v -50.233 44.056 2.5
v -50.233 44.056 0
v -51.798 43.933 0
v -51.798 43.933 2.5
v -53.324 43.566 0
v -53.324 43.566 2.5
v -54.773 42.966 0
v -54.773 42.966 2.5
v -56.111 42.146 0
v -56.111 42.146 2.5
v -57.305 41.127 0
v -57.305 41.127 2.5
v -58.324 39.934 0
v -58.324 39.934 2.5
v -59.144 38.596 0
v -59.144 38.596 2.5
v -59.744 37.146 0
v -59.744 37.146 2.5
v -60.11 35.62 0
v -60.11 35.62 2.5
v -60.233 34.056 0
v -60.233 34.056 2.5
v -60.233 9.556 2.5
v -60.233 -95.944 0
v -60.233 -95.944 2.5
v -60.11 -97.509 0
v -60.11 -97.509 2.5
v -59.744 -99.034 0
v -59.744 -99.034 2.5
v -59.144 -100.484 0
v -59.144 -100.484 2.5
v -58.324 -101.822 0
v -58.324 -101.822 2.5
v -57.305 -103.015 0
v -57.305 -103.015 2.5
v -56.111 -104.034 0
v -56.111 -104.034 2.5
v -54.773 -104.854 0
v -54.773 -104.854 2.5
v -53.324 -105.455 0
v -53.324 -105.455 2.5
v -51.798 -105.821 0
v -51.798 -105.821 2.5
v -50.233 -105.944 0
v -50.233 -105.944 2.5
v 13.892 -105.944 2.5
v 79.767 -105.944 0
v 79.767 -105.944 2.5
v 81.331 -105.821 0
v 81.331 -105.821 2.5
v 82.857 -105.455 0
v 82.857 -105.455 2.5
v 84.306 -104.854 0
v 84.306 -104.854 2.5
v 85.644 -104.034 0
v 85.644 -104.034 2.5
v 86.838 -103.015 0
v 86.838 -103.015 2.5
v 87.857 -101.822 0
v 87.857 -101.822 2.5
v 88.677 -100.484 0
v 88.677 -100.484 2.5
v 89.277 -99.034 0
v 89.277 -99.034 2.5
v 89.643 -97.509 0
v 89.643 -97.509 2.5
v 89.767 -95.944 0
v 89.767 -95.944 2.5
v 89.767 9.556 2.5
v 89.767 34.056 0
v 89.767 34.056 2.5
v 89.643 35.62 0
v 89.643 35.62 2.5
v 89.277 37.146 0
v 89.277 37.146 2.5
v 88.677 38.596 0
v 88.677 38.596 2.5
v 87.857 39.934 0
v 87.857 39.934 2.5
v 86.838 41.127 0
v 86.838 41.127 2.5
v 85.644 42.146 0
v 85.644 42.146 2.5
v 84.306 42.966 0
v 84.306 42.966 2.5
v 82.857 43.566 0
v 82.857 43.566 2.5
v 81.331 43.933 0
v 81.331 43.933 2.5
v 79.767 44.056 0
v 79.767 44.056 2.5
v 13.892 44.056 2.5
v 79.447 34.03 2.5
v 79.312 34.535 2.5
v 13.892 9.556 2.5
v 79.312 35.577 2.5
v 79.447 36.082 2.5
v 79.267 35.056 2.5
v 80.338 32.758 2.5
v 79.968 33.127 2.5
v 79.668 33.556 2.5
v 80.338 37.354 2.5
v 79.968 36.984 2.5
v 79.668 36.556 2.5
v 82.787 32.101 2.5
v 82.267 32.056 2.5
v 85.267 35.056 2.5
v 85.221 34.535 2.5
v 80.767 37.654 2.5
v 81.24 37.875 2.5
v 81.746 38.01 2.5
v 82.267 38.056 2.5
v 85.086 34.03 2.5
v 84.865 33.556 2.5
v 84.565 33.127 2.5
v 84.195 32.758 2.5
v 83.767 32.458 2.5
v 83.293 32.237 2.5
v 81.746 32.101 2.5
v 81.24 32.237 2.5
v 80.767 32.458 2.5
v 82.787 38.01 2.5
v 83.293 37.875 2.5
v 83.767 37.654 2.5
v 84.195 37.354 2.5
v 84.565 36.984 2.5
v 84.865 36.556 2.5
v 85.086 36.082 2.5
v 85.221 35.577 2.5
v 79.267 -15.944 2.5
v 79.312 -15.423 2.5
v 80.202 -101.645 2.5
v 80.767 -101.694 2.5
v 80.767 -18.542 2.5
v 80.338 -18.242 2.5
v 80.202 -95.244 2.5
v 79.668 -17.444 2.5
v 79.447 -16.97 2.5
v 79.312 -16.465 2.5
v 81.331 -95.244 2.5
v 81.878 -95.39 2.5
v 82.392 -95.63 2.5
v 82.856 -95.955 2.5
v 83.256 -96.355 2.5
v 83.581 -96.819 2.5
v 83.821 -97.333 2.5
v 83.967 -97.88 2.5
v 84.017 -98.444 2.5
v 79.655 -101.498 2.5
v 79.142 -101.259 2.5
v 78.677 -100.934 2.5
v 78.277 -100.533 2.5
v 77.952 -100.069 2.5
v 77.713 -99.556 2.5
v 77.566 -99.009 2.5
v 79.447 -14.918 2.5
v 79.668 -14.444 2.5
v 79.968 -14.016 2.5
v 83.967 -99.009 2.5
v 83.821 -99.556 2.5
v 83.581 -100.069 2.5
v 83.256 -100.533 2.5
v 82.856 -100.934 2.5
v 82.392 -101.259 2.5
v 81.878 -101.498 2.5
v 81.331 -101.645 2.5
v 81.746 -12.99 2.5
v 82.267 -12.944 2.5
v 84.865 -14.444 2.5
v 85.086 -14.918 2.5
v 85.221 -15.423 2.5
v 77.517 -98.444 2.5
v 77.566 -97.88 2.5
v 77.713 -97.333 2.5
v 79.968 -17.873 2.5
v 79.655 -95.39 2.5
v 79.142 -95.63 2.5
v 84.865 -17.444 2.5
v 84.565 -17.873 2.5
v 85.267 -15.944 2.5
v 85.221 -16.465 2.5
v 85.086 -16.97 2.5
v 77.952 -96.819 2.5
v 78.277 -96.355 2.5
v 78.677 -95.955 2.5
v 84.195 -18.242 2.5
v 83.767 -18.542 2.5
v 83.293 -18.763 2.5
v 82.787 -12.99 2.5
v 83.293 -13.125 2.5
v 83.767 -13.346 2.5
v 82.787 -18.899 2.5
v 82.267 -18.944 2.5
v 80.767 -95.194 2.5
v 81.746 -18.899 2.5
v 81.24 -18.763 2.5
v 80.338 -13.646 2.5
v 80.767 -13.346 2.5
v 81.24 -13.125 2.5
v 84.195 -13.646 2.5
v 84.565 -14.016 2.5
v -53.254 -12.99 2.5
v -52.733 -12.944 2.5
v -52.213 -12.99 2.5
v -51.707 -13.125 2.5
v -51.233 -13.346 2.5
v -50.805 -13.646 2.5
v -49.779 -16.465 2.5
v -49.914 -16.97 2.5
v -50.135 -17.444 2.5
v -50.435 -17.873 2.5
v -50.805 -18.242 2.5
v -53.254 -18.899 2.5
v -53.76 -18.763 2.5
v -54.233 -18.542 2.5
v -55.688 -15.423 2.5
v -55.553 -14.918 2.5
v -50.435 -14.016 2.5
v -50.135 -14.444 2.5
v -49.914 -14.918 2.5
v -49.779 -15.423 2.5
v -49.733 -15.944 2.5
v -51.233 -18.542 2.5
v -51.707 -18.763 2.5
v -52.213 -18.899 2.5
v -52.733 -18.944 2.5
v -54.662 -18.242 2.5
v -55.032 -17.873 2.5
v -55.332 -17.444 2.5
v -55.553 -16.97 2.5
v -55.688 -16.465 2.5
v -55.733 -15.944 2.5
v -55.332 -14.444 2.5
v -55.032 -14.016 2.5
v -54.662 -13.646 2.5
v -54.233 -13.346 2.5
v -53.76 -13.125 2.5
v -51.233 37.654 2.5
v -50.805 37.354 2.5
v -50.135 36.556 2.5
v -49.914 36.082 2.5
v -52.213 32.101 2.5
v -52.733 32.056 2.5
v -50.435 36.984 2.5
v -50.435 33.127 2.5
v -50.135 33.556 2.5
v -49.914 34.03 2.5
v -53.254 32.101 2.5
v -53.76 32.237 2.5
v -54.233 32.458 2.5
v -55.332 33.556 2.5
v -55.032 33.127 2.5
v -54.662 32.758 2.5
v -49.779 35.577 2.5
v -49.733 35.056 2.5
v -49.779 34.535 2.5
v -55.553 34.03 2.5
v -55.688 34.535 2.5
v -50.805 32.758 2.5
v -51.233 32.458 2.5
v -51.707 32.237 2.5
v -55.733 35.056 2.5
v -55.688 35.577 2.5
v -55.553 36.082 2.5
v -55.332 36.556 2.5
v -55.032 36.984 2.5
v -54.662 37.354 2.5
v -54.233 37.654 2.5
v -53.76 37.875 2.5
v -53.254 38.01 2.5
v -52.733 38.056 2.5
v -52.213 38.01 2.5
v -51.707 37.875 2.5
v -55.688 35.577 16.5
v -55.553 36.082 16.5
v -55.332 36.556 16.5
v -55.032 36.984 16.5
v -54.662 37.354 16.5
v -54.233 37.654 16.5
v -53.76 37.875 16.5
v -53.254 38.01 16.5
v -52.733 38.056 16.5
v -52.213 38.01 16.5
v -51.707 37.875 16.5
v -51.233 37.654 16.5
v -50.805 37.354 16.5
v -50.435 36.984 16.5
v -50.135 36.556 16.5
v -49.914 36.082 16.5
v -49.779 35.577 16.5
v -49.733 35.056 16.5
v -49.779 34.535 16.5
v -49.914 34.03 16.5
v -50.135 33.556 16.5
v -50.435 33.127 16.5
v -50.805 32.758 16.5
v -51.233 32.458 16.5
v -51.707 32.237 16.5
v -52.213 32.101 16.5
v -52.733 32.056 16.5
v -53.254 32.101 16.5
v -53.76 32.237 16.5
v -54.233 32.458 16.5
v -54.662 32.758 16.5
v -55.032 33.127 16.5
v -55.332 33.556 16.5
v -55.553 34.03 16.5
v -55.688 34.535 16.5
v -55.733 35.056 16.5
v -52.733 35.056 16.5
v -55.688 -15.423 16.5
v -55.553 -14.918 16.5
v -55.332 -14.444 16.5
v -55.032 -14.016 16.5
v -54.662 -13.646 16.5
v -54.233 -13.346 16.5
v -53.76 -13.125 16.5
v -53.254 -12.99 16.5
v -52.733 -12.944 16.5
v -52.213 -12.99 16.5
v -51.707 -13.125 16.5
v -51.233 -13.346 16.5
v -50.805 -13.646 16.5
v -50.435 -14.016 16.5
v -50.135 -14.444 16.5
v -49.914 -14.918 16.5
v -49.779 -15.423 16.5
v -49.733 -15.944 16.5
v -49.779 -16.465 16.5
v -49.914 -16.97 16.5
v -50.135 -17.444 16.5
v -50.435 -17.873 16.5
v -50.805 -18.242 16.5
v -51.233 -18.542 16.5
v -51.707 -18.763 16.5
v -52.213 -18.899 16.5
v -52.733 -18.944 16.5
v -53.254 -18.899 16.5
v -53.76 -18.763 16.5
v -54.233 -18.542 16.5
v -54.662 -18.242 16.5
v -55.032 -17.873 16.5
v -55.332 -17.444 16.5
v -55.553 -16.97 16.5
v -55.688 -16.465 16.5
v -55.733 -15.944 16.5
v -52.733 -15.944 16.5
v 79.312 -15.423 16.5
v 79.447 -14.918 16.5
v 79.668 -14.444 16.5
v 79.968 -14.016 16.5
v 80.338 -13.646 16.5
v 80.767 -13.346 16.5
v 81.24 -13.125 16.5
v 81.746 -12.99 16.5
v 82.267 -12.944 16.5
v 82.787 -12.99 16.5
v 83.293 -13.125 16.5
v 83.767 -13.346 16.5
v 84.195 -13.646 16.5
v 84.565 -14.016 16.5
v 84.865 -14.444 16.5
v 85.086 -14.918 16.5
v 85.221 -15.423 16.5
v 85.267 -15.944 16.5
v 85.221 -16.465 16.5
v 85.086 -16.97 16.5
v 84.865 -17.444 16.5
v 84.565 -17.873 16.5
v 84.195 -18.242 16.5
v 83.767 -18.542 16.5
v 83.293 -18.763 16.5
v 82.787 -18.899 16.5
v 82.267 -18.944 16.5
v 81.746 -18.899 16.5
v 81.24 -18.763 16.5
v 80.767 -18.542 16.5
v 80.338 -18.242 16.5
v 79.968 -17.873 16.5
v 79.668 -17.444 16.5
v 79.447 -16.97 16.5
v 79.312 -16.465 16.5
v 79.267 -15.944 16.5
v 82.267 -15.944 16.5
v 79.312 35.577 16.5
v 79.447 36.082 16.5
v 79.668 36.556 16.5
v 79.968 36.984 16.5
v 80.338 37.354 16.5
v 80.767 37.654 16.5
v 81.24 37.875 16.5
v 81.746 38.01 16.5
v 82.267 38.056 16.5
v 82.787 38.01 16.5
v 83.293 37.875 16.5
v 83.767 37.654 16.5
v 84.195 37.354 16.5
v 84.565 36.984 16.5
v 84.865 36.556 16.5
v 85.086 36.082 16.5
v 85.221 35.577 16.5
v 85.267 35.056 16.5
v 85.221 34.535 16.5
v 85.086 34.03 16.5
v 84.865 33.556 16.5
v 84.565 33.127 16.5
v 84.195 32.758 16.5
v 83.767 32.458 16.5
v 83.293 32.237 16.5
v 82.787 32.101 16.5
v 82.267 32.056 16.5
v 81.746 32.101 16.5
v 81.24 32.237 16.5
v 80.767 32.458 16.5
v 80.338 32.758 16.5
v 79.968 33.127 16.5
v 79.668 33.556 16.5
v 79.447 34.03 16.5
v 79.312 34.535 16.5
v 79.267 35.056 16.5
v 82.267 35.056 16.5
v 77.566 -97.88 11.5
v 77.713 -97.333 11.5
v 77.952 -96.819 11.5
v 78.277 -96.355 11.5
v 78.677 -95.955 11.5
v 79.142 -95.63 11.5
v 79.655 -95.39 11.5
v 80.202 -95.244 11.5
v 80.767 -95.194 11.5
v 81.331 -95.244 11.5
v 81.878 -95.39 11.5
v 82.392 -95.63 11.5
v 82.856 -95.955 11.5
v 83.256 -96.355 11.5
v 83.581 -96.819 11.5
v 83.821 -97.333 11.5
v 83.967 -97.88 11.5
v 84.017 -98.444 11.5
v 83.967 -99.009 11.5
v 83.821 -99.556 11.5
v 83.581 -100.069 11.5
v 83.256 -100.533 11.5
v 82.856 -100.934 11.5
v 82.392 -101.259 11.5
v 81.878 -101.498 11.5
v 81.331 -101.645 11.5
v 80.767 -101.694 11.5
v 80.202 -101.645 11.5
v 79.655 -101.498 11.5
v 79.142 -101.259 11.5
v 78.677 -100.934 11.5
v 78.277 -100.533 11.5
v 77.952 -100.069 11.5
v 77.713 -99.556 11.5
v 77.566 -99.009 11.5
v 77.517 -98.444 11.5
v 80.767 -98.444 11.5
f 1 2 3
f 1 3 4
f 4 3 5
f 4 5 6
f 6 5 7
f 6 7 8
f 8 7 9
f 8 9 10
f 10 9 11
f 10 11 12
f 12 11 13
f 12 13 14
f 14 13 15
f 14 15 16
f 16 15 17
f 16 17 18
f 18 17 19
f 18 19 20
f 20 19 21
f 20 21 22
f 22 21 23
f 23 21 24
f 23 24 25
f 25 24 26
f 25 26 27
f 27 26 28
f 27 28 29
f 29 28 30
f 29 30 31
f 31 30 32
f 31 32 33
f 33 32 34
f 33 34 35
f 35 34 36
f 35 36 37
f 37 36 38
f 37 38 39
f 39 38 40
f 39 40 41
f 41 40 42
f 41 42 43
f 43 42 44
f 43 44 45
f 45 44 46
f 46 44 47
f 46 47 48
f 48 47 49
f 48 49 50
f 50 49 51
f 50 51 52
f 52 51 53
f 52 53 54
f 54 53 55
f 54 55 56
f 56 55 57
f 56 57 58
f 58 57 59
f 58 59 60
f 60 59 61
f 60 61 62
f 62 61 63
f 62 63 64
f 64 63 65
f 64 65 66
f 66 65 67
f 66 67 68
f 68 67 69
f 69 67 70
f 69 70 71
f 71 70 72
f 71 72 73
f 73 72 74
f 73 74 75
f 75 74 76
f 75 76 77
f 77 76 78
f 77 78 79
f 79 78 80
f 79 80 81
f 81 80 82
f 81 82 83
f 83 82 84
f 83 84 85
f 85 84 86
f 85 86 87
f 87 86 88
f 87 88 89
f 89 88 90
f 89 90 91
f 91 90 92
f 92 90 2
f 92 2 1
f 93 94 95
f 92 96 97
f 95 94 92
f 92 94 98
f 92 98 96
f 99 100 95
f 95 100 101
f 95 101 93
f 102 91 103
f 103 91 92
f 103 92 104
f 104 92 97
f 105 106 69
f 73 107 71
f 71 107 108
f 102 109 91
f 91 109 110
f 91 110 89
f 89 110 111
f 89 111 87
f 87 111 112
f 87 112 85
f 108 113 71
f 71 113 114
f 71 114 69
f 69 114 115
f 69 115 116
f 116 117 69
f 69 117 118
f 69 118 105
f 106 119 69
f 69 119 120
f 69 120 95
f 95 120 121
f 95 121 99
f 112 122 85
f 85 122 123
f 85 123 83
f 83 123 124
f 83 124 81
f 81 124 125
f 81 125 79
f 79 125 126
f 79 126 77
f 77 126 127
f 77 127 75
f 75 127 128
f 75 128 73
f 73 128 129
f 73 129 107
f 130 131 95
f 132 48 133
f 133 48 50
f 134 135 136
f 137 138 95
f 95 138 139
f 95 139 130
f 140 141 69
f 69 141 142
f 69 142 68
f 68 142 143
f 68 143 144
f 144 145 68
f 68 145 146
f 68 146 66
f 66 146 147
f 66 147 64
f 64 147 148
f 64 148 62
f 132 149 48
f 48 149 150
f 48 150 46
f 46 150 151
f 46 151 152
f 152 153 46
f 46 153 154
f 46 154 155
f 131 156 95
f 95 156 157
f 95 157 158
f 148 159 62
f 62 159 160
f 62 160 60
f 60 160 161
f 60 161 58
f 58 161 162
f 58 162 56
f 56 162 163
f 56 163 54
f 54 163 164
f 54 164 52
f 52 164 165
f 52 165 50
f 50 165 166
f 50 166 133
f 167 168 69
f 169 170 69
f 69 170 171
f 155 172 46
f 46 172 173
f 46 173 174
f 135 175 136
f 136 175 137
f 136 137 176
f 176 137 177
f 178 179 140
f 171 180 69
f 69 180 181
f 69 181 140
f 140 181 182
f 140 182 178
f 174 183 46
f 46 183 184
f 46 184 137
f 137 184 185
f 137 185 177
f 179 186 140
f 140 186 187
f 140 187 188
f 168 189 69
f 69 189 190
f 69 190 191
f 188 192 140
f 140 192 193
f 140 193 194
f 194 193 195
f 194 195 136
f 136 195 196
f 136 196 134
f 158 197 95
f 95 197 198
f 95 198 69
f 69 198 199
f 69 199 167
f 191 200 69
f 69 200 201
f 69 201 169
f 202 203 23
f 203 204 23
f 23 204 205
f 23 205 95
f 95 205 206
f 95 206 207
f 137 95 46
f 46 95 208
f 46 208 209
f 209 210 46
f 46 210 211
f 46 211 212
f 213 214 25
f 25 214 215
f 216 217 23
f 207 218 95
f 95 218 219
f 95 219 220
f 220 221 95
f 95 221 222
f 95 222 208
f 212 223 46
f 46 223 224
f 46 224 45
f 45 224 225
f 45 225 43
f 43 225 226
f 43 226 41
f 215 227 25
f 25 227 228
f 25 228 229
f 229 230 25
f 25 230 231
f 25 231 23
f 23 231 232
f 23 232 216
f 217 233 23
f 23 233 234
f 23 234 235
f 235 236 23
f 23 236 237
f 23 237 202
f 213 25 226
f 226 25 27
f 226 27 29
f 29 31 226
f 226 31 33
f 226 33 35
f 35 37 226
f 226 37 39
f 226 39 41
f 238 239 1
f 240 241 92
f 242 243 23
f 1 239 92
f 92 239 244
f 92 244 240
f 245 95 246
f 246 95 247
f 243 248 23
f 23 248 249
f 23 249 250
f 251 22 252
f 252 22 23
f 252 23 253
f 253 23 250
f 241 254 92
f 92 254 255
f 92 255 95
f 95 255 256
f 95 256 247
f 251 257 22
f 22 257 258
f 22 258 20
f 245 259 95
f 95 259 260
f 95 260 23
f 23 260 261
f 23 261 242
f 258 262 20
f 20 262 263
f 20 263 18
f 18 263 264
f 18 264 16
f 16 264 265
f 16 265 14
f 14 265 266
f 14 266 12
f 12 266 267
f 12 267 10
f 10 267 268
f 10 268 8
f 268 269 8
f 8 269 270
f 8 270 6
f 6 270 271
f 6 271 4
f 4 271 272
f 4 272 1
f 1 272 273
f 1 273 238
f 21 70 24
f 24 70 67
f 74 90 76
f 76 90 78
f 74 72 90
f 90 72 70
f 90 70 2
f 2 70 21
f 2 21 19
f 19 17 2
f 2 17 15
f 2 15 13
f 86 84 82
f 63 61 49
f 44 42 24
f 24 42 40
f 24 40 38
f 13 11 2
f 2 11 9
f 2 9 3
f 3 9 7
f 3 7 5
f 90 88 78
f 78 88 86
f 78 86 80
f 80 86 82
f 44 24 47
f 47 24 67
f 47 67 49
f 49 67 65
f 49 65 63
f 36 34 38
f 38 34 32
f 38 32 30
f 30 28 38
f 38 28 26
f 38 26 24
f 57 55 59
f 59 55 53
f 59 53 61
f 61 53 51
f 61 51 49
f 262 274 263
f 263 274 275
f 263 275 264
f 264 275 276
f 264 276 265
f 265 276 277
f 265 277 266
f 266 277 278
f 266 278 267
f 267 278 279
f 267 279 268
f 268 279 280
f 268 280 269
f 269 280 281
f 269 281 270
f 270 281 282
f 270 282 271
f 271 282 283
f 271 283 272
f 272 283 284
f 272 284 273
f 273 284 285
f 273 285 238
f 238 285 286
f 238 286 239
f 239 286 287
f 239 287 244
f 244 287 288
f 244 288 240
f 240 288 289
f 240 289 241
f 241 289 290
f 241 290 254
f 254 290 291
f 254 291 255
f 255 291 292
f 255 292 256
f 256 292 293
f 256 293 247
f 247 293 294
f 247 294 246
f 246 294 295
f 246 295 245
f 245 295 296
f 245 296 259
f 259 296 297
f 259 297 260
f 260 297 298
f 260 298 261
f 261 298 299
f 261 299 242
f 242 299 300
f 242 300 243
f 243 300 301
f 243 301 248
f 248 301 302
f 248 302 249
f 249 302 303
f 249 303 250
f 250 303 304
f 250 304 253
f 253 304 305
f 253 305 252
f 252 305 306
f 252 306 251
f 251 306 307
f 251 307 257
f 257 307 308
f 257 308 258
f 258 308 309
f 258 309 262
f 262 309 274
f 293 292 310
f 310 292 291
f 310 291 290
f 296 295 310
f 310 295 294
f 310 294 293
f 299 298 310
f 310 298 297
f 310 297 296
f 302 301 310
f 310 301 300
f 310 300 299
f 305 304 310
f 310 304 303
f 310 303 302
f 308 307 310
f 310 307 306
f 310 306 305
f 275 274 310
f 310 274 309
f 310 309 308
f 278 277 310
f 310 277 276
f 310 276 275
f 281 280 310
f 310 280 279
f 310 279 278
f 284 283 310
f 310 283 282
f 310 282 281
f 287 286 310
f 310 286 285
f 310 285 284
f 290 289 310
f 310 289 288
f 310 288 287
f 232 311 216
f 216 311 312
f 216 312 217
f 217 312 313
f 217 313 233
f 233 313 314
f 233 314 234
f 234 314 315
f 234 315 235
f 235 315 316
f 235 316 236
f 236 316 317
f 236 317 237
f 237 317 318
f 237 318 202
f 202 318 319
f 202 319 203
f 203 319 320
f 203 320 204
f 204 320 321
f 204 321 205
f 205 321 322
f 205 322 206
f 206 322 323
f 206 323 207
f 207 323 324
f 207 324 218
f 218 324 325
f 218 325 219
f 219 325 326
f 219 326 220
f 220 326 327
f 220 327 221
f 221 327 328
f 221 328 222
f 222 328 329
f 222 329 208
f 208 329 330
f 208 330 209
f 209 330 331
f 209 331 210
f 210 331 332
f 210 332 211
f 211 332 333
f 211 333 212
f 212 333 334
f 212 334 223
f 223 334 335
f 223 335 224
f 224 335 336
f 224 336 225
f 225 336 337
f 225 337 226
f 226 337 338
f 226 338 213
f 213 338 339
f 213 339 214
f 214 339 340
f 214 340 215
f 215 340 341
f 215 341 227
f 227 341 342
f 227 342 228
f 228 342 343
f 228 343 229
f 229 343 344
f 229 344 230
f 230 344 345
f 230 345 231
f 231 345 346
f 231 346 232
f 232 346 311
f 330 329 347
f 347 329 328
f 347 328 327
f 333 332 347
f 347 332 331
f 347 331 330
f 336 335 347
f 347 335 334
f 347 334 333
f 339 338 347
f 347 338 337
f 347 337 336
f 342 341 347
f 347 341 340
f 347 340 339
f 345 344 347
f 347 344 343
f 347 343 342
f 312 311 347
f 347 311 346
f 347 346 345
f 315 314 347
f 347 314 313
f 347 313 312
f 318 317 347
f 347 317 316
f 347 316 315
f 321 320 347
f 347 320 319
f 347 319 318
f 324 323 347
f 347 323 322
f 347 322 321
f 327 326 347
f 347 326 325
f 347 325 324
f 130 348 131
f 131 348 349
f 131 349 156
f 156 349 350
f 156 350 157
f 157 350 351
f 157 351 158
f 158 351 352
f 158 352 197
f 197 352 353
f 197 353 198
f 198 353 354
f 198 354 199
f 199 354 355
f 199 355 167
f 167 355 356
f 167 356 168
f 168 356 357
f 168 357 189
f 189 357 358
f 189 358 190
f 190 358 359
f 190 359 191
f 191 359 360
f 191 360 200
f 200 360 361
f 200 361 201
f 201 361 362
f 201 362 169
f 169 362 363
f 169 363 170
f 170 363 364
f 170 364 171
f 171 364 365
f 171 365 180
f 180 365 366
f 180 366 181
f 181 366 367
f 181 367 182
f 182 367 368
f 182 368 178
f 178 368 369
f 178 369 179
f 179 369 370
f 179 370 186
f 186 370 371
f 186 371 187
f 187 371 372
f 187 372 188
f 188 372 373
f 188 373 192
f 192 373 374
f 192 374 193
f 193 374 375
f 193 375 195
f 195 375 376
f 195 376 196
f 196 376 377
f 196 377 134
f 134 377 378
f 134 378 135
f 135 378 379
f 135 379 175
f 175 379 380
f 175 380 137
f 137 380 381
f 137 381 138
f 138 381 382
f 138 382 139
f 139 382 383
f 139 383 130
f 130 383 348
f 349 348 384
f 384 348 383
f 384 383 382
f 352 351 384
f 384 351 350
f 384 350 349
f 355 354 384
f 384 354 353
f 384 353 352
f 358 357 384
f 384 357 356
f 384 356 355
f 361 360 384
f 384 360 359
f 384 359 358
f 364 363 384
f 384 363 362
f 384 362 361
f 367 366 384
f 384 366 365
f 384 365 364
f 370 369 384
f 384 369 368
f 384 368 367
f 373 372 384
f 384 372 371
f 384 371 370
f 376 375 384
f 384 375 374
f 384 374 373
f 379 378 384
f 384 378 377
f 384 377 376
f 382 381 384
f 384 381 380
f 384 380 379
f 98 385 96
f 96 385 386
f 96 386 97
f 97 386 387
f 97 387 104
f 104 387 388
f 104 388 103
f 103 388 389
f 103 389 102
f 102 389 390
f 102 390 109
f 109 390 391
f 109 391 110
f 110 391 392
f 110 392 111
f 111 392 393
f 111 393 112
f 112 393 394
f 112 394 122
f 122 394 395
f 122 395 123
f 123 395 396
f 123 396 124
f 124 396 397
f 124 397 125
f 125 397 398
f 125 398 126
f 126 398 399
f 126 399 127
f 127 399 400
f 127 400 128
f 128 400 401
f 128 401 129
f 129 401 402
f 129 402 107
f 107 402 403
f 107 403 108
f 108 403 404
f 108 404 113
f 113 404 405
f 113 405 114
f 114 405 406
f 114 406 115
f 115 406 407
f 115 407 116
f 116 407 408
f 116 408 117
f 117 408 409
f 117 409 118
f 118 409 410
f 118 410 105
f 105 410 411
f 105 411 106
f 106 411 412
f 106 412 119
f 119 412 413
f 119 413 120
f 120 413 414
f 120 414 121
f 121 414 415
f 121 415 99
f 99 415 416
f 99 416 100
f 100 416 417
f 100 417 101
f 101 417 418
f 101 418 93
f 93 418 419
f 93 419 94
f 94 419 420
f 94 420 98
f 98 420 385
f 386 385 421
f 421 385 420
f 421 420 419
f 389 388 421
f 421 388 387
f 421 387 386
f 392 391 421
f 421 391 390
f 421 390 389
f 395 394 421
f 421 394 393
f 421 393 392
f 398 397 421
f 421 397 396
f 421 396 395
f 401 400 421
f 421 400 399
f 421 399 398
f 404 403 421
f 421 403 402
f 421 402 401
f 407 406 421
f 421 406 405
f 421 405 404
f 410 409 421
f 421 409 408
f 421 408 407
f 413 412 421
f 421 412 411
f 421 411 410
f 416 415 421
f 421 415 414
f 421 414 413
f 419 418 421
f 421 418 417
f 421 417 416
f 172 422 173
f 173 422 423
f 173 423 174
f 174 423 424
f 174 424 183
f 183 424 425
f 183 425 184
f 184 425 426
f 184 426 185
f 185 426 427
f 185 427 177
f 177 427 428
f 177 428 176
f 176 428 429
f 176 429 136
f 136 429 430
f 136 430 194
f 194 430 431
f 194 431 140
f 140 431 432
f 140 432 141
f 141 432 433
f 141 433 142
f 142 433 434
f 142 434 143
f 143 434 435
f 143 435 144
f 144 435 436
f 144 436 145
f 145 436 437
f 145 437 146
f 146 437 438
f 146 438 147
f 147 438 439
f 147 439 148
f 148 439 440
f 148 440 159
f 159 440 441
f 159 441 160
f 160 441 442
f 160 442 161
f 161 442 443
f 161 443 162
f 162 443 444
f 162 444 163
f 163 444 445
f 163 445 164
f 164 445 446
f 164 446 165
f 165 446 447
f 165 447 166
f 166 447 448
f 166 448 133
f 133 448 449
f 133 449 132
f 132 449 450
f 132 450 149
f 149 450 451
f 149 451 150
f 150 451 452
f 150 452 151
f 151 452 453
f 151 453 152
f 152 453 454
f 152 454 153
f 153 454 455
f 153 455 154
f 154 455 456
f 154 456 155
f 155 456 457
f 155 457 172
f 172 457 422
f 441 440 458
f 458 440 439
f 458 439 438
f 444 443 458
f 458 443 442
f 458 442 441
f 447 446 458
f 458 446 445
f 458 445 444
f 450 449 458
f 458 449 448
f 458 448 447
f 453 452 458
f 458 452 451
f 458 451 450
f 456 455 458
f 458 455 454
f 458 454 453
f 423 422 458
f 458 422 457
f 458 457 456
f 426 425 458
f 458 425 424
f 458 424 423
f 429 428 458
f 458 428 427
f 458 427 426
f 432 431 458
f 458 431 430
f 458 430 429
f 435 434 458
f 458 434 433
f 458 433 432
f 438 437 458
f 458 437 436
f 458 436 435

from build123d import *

# Parameters (mm, degrees)
BOSS_EXTRUDE1_DEPTH = 2.5
SKETCH3_R           = 3
BOSS_EXTRUDE2_DEPTH = 14
SKETCH4_R           = 3.25
BOSS_EXTRUDE3_DEPTH = 9


with BuildPart() as part:
    # Sketch2 → Boss-Extrude1 (new body)
    with BuildSketch(Plane.XY):
        with BuildLine():
            Line((-50.233491964, 44.055695146), (79.766508036, 44.055695146))
            ThreePointArc((79.766508036, 44.055695146), (86.837575848, 41.126762958), (89.766508036, 34.055695146))
            Line((89.766508036, 34.055695146), (89.766508036, -95.944304854))
            ThreePointArc((89.766508036, -95.944304854), (86.837575848, -103.015372665), (79.766508036, -105.944304854))
            Line((79.766508036, -105.944304854), (-50.233491964, -105.944304854))
            ThreePointArc((-50.233491964, -105.944304854), (-57.304559776, -103.015372665), (-60.233491964, -95.944304854))
            Line((-60.233491964, -95.944304854), (-60.233491964, 34.055695146))
            ThreePointArc((-60.233491964, 34.055695146), (-57.304559776, 41.126762958), (-50.233491964, 44.055695146))
        make_face()
    extrude(amount=BOSS_EXTRUDE1_DEPTH)

    # Sketch3 → Boss-Extrude2 (add)
    with BuildSketch(Plane.XY.offset(2.5)):
        with Locations((-52.733491964, 35.055695146)):
            Circle(SKETCH3_R)
        with Locations((-52.733491964, -15.944304854)):
            Circle(SKETCH3_R)
        with Locations((82.266508036, -15.944304854)):
            Circle(SKETCH3_R)
        with Locations((82.266508036, 35.055695146)):
            Circle(SKETCH3_R)
    extrude(amount=BOSS_EXTRUDE2_DEPTH)

    # Sketch4 → Boss-Extrude3 (add)
    with BuildSketch(Plane.XY.offset(2.5)):
        with Locations((80.766508036, -98.444304854)):
            Circle(SKETCH4_R)
    extrude(amount=BOSS_EXTRUDE3_DEPTH)


solid = part.part
